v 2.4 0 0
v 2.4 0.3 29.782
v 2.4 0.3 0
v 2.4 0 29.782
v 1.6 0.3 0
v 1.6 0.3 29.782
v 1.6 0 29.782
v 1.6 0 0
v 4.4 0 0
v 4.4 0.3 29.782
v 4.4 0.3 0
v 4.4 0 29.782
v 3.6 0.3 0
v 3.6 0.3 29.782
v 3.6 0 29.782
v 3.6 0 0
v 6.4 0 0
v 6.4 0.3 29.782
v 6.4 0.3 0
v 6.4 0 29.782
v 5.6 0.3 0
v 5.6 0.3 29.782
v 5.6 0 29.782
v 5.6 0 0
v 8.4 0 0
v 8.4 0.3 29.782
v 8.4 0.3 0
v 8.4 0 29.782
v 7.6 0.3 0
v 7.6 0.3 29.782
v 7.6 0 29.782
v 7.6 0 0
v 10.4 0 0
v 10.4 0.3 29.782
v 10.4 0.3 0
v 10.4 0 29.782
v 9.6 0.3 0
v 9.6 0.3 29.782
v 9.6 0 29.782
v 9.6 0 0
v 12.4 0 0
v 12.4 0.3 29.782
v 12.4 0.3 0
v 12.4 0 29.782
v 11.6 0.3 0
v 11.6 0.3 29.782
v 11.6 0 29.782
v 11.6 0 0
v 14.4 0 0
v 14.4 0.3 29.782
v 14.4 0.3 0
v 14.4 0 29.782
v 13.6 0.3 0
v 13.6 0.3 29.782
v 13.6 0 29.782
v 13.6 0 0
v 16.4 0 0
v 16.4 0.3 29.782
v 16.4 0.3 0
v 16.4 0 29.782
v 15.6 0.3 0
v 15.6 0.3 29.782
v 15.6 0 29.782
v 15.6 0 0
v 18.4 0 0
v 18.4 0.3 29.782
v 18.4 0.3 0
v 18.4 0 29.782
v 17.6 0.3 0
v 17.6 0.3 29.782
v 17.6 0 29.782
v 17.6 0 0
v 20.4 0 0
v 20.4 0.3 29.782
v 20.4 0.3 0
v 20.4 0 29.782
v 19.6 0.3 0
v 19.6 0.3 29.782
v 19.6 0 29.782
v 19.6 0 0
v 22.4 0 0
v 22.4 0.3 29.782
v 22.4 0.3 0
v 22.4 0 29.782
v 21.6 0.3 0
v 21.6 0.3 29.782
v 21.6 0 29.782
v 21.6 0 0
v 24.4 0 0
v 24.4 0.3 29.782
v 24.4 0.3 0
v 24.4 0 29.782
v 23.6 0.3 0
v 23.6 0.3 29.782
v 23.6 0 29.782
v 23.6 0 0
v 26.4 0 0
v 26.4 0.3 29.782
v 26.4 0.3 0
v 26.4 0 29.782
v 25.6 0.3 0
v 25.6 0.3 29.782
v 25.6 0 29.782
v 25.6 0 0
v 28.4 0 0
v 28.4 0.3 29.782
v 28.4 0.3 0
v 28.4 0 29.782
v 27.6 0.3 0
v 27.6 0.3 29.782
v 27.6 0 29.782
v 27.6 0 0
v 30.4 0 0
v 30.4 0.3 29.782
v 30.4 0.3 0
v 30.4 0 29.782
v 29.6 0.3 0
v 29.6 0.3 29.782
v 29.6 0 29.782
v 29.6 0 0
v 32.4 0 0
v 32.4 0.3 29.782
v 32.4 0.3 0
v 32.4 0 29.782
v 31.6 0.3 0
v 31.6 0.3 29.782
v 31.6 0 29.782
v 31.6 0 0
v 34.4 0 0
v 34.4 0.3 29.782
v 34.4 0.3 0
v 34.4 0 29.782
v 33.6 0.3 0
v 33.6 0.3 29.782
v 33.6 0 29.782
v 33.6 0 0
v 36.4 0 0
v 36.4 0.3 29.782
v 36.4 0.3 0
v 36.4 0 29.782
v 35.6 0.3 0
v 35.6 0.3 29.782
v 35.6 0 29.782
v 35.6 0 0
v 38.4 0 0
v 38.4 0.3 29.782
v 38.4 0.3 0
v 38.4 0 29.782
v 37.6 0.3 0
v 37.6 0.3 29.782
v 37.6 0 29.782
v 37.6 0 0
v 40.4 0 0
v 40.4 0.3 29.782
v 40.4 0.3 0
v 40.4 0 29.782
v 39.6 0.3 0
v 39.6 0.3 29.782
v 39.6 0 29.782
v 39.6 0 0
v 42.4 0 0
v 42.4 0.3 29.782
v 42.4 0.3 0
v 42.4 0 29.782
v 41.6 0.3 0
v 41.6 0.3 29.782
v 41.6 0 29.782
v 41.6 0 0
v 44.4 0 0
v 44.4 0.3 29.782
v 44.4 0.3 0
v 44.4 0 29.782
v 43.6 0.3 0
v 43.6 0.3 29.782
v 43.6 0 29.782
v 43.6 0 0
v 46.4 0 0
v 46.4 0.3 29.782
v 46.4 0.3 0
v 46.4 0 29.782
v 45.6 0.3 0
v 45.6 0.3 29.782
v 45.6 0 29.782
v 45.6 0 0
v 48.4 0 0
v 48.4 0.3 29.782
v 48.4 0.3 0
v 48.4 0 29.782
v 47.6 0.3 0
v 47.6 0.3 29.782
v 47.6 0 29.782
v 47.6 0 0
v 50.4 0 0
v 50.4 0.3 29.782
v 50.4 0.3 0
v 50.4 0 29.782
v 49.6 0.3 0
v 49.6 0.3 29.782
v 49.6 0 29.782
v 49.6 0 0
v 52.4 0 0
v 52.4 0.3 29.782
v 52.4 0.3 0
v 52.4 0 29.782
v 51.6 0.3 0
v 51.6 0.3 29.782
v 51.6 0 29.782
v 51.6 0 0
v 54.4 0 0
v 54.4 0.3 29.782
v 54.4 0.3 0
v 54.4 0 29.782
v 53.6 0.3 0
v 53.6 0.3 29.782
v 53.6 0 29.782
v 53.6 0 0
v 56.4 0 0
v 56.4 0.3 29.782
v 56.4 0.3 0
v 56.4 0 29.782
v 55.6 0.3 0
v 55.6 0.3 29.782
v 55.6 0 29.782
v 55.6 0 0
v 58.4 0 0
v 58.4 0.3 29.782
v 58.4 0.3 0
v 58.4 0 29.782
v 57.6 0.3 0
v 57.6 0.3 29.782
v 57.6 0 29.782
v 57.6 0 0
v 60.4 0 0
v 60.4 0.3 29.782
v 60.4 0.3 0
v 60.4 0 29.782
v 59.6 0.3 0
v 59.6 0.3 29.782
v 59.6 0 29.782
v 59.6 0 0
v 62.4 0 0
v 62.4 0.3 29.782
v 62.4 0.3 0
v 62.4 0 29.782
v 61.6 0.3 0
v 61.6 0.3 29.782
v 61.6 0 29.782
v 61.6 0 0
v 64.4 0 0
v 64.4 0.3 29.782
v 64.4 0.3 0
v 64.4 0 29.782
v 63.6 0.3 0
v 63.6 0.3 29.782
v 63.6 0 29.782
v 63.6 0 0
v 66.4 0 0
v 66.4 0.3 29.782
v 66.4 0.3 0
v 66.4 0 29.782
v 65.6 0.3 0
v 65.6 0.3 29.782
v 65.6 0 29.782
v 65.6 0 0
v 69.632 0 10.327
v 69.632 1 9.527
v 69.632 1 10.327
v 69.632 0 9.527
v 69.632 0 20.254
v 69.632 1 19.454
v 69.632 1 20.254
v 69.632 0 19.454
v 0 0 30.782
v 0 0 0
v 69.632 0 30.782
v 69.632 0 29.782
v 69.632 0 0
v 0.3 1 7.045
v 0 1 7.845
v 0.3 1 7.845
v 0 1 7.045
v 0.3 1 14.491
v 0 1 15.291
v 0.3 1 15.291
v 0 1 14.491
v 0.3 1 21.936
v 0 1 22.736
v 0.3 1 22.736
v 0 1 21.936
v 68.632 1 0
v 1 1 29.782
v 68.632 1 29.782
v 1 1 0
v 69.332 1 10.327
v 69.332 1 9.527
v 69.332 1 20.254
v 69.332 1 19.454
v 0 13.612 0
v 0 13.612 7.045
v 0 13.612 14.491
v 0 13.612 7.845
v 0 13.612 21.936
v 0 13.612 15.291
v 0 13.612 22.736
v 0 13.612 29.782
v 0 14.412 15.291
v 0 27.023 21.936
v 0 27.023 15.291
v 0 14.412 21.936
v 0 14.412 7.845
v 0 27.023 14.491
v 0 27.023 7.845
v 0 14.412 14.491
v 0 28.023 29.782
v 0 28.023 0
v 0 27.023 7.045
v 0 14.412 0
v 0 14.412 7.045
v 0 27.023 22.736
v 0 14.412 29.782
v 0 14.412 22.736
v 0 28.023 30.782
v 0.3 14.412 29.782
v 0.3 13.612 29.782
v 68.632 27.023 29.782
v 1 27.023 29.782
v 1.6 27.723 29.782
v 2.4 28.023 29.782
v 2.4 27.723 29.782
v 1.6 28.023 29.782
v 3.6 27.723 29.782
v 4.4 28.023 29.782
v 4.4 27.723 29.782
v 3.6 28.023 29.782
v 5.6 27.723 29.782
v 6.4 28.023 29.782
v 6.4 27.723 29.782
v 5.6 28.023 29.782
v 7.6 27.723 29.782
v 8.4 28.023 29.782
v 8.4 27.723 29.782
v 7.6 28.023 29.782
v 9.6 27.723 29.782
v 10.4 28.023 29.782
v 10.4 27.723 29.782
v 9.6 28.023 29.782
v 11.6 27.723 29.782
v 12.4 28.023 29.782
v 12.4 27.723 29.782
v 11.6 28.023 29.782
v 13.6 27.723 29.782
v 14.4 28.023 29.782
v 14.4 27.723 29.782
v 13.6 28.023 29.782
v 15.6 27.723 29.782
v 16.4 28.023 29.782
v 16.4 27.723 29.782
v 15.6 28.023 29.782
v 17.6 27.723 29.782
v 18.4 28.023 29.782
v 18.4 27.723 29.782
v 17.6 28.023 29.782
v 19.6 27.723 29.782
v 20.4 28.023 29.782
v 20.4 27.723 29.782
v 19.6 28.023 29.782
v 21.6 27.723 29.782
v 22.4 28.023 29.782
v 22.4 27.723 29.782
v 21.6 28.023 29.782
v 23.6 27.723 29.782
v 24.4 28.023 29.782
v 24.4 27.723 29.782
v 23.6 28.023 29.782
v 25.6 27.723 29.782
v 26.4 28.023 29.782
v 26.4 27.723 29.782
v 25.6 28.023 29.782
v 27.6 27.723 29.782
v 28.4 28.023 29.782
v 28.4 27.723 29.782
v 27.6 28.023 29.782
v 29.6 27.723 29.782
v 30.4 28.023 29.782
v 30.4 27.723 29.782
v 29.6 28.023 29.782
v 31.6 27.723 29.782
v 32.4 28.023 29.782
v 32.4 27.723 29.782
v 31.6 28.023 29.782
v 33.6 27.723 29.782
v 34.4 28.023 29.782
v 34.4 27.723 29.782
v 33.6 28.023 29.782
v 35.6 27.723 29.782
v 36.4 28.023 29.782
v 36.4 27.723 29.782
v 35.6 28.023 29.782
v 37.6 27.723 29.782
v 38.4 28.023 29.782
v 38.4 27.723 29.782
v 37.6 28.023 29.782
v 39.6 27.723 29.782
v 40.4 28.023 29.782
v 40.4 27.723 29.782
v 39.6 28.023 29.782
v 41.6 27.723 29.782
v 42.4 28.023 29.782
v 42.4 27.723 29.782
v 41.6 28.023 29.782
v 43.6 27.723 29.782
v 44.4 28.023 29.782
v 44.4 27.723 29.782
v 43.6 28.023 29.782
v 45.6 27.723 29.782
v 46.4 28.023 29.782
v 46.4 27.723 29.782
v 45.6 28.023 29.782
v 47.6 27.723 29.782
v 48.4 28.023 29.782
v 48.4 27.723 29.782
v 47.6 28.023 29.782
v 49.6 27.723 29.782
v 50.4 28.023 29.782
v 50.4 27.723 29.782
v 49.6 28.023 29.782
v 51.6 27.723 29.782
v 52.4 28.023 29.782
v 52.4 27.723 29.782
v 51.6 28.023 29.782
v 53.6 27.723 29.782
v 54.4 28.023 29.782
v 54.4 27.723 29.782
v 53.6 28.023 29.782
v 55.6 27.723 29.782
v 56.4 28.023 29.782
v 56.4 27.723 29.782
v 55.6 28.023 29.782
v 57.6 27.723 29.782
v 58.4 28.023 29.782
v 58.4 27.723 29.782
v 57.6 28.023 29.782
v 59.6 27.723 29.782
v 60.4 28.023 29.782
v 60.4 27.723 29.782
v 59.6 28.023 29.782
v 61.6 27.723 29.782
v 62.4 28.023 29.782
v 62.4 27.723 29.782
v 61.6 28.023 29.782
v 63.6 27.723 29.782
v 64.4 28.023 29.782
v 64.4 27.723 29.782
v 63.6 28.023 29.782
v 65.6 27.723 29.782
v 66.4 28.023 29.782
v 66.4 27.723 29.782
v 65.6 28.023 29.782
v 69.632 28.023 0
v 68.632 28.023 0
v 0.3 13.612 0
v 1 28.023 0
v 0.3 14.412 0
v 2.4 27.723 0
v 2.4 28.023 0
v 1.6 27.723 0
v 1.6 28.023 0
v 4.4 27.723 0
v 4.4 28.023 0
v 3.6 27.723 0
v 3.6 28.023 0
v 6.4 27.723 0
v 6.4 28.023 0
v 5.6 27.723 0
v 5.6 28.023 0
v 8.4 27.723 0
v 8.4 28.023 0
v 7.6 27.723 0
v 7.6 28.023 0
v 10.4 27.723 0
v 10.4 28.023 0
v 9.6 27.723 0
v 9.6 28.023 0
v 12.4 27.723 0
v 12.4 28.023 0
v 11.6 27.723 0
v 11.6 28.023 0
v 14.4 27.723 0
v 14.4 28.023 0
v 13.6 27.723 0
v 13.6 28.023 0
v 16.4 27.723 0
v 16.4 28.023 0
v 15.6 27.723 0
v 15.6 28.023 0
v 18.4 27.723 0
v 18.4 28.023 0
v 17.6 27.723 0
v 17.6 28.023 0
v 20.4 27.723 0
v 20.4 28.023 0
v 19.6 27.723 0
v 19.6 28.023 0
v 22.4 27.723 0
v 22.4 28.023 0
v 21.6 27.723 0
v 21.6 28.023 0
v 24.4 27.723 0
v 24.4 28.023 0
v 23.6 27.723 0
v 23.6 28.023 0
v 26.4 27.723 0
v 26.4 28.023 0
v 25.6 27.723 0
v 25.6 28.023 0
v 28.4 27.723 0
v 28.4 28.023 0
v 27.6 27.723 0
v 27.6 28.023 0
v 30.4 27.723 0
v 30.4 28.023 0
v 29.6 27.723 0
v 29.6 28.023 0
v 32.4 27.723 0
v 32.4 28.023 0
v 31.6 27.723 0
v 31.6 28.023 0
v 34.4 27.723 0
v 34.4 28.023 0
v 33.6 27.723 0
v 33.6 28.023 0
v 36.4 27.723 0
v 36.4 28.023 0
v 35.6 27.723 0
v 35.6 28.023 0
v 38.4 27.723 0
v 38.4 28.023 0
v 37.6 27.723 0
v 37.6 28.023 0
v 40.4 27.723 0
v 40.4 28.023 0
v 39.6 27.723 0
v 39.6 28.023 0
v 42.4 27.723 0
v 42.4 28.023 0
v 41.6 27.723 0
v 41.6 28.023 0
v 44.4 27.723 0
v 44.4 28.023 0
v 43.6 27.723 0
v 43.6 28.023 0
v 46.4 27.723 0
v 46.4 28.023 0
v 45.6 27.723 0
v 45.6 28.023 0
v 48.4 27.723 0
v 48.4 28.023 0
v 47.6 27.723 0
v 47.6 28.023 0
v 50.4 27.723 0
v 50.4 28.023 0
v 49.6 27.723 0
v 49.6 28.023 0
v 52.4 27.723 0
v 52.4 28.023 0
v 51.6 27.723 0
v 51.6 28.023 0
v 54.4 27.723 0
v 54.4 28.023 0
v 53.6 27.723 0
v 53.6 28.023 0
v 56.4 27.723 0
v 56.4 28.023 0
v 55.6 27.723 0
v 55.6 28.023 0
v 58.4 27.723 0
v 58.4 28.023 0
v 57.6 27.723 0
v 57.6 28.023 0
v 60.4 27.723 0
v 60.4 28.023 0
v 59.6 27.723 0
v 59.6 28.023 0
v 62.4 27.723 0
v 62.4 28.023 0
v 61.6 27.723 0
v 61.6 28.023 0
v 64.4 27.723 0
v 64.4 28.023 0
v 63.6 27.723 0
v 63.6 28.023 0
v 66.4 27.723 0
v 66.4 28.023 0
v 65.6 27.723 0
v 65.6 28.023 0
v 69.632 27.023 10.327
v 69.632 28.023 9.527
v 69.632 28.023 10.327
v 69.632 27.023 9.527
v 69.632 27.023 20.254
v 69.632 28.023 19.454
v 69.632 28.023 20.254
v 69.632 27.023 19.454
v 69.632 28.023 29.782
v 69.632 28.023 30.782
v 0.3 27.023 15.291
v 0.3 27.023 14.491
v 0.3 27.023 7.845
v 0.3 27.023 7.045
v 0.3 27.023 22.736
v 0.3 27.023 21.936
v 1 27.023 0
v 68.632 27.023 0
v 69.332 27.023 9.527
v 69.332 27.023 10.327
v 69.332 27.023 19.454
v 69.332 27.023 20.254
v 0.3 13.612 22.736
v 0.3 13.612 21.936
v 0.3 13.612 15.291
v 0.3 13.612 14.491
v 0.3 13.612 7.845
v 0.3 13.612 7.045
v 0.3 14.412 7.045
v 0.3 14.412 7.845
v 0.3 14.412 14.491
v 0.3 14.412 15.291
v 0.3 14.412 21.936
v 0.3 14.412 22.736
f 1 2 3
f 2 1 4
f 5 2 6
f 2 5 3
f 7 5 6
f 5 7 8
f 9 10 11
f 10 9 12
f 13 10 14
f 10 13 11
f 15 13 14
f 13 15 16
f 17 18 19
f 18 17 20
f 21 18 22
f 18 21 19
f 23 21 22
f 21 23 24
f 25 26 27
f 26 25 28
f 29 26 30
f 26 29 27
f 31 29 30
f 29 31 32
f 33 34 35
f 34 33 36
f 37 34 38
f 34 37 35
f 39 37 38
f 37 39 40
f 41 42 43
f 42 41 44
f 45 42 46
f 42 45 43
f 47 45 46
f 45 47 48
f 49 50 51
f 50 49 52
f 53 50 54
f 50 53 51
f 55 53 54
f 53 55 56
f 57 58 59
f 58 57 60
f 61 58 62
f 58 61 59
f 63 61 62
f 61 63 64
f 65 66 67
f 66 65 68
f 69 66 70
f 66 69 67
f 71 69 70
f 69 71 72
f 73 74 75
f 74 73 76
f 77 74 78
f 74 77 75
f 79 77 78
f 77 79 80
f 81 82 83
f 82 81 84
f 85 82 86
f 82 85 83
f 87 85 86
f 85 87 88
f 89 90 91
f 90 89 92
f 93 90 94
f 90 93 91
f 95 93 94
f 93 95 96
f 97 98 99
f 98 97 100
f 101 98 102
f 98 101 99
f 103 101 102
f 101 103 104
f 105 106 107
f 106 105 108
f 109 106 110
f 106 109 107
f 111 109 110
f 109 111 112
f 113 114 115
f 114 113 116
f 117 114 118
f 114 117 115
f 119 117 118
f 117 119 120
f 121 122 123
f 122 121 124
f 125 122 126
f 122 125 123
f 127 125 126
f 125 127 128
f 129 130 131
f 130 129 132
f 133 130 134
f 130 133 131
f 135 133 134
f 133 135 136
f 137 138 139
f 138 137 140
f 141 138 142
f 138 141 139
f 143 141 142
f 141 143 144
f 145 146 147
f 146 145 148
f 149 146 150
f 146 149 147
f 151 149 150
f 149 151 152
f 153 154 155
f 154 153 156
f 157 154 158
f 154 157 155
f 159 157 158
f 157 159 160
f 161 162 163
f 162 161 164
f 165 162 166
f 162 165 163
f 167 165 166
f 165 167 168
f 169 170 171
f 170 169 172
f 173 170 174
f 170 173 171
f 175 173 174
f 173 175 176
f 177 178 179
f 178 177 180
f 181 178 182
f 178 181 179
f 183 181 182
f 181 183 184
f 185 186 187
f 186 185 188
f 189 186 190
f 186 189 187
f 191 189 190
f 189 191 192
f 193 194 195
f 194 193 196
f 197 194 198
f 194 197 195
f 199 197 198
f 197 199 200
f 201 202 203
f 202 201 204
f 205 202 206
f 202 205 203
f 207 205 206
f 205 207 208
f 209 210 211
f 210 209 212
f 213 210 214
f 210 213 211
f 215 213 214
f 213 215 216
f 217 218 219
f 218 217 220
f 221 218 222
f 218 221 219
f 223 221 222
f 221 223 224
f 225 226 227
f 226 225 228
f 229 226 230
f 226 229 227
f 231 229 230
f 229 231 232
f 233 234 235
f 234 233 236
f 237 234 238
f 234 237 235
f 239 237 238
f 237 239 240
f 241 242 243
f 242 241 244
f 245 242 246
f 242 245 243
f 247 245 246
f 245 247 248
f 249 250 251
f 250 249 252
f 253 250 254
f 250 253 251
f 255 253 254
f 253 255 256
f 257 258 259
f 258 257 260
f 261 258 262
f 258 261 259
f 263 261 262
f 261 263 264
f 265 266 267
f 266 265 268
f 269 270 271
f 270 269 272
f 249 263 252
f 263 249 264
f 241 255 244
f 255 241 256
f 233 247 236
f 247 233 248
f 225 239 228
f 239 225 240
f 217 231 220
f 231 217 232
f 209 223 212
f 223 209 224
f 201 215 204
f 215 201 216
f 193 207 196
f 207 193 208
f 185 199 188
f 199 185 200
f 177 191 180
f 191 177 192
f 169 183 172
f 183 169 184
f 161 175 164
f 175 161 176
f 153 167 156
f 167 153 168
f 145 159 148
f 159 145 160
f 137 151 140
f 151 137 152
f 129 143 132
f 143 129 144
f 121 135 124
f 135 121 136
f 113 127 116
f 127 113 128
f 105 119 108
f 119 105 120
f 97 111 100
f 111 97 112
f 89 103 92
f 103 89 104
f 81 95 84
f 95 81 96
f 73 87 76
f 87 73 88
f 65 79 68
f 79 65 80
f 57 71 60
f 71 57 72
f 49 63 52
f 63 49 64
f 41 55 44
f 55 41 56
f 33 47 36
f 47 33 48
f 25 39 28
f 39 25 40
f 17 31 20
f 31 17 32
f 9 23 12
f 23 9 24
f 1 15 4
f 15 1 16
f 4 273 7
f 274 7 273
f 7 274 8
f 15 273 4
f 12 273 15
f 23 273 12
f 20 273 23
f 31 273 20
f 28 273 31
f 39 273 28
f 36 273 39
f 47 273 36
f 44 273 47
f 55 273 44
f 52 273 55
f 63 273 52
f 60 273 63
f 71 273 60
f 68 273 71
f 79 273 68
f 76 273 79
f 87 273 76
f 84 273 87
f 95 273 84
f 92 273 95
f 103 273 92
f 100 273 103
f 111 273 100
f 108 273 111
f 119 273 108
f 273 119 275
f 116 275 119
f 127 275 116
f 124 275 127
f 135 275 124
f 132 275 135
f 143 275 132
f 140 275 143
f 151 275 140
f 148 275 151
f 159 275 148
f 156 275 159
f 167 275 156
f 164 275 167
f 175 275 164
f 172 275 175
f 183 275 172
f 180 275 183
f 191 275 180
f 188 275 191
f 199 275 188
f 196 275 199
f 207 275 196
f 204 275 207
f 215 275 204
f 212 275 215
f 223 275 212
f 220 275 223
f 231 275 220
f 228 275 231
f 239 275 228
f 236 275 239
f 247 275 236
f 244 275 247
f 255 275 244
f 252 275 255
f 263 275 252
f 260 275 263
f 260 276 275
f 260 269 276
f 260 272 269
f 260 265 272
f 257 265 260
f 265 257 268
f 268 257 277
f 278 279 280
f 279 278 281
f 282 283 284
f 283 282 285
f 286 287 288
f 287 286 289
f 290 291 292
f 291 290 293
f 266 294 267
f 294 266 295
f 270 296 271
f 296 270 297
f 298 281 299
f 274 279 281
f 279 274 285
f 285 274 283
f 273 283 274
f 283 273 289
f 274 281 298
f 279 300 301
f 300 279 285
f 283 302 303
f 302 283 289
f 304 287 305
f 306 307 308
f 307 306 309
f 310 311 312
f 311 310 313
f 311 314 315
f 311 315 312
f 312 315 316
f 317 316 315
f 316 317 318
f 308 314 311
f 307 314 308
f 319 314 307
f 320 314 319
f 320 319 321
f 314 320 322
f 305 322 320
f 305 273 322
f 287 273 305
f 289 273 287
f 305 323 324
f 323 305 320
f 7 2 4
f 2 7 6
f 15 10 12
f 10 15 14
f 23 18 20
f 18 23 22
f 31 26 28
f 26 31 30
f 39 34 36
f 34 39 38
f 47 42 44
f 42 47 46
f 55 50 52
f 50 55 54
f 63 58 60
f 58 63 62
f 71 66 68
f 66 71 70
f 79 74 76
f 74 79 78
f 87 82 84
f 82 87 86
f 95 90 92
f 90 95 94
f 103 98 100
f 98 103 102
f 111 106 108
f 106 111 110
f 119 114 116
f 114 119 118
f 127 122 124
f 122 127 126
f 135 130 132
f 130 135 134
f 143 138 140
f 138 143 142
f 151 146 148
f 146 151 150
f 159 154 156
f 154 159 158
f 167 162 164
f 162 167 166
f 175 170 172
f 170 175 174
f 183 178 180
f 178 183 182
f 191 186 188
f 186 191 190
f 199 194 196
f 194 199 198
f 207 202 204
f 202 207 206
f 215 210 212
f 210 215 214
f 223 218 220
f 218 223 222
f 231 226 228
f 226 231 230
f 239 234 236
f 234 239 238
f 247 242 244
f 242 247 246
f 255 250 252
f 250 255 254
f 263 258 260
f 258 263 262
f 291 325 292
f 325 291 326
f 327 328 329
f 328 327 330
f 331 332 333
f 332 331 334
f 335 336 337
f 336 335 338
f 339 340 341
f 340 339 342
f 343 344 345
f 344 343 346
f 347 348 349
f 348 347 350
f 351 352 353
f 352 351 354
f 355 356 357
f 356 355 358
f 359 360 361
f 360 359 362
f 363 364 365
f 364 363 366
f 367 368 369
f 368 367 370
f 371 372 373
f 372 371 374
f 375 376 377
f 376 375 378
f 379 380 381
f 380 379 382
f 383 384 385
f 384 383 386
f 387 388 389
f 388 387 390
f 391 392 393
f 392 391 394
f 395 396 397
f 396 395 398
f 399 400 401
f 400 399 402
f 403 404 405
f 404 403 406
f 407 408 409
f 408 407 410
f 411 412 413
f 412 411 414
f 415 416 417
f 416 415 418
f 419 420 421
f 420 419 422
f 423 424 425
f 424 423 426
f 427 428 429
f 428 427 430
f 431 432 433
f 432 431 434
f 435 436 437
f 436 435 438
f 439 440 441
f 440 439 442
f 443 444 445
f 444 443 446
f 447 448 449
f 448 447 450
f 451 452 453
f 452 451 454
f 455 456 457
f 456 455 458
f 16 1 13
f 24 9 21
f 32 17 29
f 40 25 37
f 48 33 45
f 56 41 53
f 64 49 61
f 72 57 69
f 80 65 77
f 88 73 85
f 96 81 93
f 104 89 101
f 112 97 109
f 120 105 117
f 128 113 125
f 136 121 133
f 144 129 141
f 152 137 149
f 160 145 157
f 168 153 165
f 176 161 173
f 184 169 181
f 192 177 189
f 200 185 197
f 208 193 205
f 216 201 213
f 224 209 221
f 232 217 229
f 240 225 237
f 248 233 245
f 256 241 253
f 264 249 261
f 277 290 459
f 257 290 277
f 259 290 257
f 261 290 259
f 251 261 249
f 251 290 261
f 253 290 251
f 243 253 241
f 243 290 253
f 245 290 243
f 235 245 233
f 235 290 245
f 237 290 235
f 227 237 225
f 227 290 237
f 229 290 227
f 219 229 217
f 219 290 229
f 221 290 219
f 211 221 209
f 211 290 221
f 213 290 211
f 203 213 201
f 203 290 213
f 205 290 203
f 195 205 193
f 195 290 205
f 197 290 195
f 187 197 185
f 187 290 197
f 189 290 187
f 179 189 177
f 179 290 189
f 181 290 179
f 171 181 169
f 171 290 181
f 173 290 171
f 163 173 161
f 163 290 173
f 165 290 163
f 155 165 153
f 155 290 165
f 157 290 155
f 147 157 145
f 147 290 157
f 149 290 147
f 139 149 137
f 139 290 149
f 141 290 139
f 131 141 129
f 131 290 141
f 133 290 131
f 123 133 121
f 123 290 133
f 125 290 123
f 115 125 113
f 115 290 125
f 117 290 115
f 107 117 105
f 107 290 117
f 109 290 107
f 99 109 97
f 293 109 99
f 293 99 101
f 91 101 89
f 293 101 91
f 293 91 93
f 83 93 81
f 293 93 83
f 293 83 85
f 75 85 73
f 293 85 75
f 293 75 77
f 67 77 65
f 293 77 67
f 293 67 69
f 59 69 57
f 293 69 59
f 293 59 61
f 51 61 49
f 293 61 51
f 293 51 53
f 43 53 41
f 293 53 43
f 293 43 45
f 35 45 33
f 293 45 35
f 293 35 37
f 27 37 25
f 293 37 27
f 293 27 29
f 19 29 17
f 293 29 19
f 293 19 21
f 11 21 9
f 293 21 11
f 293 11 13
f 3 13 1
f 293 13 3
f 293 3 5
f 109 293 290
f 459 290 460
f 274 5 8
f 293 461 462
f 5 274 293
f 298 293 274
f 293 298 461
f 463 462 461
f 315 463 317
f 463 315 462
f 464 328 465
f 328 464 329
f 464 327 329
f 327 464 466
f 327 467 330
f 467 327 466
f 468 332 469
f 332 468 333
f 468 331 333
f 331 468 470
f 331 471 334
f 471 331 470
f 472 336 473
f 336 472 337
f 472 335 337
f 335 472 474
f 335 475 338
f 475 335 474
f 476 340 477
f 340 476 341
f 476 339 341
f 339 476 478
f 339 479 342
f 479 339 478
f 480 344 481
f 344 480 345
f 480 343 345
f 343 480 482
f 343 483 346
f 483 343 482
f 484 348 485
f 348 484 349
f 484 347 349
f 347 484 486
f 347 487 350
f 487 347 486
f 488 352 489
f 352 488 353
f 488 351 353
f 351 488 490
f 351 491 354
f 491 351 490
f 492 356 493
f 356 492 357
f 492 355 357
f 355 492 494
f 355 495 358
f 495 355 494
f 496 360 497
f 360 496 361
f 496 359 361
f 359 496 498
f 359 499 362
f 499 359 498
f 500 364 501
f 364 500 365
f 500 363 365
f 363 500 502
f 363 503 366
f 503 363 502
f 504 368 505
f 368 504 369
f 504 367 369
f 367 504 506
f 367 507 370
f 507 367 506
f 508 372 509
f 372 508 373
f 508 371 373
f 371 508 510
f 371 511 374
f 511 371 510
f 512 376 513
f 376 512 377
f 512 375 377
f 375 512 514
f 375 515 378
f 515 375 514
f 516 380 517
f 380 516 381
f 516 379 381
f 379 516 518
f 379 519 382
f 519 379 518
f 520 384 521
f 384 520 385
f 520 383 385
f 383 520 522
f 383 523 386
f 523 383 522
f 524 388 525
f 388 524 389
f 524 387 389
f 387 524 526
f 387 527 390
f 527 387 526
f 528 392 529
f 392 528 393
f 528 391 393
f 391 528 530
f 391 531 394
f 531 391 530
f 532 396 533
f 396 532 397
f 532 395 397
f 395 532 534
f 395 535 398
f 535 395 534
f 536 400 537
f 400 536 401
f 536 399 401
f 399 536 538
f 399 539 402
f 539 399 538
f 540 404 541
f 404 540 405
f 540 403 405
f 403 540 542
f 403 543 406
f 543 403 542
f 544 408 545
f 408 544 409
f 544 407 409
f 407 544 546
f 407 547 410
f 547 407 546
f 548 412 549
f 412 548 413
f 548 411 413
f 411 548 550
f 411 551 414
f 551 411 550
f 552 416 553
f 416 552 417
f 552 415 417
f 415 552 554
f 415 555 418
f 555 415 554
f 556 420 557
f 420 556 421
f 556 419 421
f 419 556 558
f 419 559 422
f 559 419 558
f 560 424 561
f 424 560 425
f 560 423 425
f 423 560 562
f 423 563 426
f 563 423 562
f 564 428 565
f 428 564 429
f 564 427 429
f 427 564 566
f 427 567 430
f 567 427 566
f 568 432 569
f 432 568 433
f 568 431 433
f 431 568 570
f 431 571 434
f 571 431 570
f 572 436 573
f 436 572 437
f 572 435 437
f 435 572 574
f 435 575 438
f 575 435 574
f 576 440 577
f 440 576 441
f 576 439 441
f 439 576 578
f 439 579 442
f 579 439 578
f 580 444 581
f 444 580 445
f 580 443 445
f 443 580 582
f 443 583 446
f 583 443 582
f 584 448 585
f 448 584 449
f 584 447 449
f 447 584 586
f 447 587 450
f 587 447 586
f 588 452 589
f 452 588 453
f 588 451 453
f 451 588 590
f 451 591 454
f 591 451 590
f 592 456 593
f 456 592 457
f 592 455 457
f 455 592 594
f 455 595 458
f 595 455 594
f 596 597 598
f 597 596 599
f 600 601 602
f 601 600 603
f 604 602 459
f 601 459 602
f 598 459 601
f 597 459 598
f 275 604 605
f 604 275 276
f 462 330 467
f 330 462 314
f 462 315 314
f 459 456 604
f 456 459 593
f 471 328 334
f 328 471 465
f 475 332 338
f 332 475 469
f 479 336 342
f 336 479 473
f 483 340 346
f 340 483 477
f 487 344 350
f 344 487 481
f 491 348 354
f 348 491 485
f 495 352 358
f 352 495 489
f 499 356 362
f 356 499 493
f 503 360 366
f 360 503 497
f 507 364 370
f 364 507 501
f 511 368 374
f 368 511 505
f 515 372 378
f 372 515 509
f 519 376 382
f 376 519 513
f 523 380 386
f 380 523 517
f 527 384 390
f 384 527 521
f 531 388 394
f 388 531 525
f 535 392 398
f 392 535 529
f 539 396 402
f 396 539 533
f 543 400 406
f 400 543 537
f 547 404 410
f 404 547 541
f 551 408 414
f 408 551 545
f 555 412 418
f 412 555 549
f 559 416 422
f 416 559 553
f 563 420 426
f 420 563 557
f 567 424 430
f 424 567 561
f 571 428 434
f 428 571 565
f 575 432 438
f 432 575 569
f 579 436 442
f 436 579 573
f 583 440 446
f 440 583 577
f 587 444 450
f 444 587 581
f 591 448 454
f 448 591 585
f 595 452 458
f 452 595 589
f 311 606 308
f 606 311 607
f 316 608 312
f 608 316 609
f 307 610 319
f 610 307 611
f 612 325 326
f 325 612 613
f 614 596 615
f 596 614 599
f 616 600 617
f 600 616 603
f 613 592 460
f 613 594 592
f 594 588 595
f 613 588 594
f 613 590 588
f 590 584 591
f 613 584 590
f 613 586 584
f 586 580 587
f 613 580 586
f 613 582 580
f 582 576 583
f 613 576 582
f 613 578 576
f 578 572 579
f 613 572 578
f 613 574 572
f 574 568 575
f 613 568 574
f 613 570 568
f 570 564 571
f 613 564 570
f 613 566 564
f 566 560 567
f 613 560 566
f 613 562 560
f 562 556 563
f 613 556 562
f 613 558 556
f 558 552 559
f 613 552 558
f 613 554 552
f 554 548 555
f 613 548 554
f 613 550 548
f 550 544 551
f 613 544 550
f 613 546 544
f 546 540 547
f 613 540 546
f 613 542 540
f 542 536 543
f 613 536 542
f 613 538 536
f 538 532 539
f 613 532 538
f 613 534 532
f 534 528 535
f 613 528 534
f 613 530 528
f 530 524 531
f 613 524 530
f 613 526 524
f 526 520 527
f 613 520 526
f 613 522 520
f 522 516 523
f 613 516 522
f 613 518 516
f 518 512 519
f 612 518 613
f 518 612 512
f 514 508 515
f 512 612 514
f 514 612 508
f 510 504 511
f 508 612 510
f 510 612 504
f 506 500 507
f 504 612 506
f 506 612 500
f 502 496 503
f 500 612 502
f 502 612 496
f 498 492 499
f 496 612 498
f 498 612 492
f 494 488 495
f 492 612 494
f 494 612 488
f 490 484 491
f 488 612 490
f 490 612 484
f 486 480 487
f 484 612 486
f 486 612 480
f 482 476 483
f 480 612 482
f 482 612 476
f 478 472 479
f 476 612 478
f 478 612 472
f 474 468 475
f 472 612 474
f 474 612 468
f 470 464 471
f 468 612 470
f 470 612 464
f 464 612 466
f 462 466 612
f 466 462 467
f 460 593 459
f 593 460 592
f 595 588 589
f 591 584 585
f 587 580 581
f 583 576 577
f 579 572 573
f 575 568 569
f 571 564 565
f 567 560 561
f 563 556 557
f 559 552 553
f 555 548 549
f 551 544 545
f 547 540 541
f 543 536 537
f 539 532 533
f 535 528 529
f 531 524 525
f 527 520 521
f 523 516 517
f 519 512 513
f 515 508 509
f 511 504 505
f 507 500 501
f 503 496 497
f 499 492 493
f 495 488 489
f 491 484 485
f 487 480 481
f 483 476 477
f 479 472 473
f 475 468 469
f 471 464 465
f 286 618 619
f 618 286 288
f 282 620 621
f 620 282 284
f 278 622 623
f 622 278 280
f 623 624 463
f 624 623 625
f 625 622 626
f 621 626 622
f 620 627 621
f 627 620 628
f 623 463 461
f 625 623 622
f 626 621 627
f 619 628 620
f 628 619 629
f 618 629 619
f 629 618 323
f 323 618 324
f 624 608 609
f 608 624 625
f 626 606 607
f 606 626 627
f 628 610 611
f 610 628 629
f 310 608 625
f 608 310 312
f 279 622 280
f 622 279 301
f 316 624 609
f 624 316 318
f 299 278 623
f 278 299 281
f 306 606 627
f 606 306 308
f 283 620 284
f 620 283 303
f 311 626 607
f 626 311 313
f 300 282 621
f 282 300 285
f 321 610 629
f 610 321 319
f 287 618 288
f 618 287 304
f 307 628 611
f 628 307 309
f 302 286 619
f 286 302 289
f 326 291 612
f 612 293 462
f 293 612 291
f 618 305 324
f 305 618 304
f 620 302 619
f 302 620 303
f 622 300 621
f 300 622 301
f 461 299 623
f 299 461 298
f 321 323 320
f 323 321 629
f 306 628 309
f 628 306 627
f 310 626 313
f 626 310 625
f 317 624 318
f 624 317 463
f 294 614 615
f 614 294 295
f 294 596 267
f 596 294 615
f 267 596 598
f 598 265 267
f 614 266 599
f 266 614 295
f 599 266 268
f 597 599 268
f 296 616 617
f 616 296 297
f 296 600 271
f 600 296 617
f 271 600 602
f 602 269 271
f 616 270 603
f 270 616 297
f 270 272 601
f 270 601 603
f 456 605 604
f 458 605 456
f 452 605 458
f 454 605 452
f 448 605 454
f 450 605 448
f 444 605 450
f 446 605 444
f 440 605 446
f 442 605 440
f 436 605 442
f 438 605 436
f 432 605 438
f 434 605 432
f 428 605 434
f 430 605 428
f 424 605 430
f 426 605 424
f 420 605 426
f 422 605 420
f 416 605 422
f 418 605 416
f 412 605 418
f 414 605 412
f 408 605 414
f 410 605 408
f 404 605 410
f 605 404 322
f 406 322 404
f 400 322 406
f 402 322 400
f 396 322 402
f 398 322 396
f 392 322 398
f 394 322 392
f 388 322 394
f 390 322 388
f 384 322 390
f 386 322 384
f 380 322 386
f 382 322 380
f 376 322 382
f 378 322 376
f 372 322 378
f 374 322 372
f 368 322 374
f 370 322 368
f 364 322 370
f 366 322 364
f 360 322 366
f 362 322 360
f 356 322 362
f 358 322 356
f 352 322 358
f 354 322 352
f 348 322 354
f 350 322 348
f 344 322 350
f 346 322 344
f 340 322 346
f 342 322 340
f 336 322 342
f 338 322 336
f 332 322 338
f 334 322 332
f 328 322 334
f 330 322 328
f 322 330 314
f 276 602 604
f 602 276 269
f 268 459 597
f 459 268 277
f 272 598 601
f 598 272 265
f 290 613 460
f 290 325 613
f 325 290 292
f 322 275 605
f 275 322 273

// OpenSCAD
// file: marine_container_roof.scad
/*
 * PROMPT: H0 scale (1:87) ISO shipping container roof panel, flat for printing.
 * 69.6 mm × 28.0 mm × 1 mm. Plain flat panel, no surface detail.
 */

$fn = 32;
S = 1 / 87;

panel_t     = 1.0;
container_m = 6;

ctnr_l      = (container_m == 6 ? 6058 : 12192) * S;  // 69.6 mm
ctnr_w      = 2438 * S;                                //  28.0 mm

module roof_panel() {
    // X = panel width (ctnr_l), Y = panel depth (ctnr_w), Z = thickness
    cube([ctnr_l, ctnr_w, panel_t]);
}

roof_panel();
// file: marine_container_nose_end.scad
/*
 * PROMPT: H0 scale (1:87) ISO shipping container sealed nose end panel, flat for
 * printing. 28.0 mm × 29.8 mm × 1 mm. Two horizontal rail grooves evenly spaced
 * in Y on the exterior face, 0.8 mm wide, 0.3 mm deep, running full width.
 */

$fn = 32;
S = 1 / 87;

panel_t    = 1.0;

ctnr_w     = 2438 * S;   // 28.0 mm — panel width
ctnr_h     = 2591 * S;   // 29.8 mm — panel height

nose_rails = 2;
rail_w     = 0.8;   // groove width (mm)
rail_d     = 0.3;   // groove depth (mm)

module nose_end_panel() {
    // X = panel width (ctnr_w), Y = panel height (ctnr_h), Z = thickness
    // exterior face is at Z = panel_t (face-up when printing)
    difference() {
        cube([ctnr_w, ctnr_h, panel_t]);
        // horizontal rail grooves evenly spaced along Y
        for (i = [1 : nose_rails]) {
            y = i * ctnr_h / (nose_rails + 1);
            translate([-1, y - rail_w/2, panel_t - rail_d])
                cube([ctnr_w + 2, rail_w, rail_d + 1]);
        }
    }
}

nose_end_panel();
// file: marine_container_door_end.scad
/*
 * PROMPT: H0 scale (1:87) ISO shipping container door end panel, flat for printing.
 * 28.0 mm × 29.8 mm × 1 mm. Three horizontal rail grooves evenly spaced in Y on the
 * exterior face, 0.8 mm wide, 0.3 mm deep, running full width. One vertical centre
 * groove 0.8 mm wide, 0.3 mm deep, running full height, representing the door split.
 */

$fn = 32;
S = 1 / 87;

panel_t    = 1.0;

ctnr_w     = 2438 * S;   // 28.0 mm — panel width
ctnr_h     = 2591 * S;   // 29.8 mm — panel height

door_rails = 3;
rail_w     = 0.8;   // groove width (mm)
rail_d     = 0.3;   // groove depth (mm)
door_gap_w = 0.8;   // centre groove width (mm)

module door_end_panel() {
    // X = panel width (ctnr_w), Y = panel height (ctnr_h), Z = thickness
    // exterior face is at Z = panel_t (face-up when printing)
    difference() {
        cube([ctnr_w, ctnr_h, panel_t]);
        // horizontal rail grooves evenly spaced along Y
        for (i = [1 : door_rails]) {
            y = i * ctnr_h / (door_rails + 1);
            translate([-1, y - rail_w/2, panel_t - rail_d])
                cube([ctnr_w + 2, rail_w, rail_d + 1]);
        }
        // vertical centre groove (door split)
        translate([ctnr_w/2 - door_gap_w/2, -1, panel_t - rail_d])
            cube([door_gap_w, ctnr_h + 2, rail_d + 1]);
    }
}

door_end_panel();
// file: marine_container_side.scad
/*
 * PROMPT: H0 scale (1:87) ISO shipping container long side panel, flat for printing.
 * 69.6 mm × 29.8 mm × 1 mm. Vertical corrugation grooves on exterior face (Z=1),
 * spaced every 2 mm along length, 0.8 mm wide, 0.3 mm deep, running full height.
 */

$fn = 32;
S = 1 / 87;

panel_t     = 1.0;
container_m = 6;

ctnr_l      = (container_m == 6 ? 6058 : 12192) * S;  // 69.6 mm
ctnr_h      = 2591 * S;                                //  29.8 mm

corr_period = 2.0;   // groove pitch (mm)
corr_w      = 0.8;   // groove width (mm)
corr_d      = 0.3;   // groove depth (mm)

module side_panel() {
    // X = panel width (ctnr_l), Y = panel height (ctnr_h), Z = thickness
    // exterior face is at Z = panel_t (face-up when printing)
    difference() {
        cube([ctnr_l, ctnr_h, panel_t]);
        // vertical corrugation grooves cut from the exterior face downward
        n = floor(ctnr_l / corr_period) - 1;
        for (i = [1 : n]) {
            x = i * corr_period;
            translate([x - corr_w/2, -1, panel_t - corr_d])
                cube([corr_w, ctnr_h + 2, corr_d + 1]);
        }
    }
}

side_panel();
// main file
/*
 * PROMPT: H0 scale (1:87) ISO shipping container assembly — visualization only.
 * Assembles five flat panels (two long sides, door end, nose end, roof) into a
 * complete container shell. Long axis along X, width along Y, height along Z.
 */

$fn = 32;
S = 1 / 87;

panel_t     = 1.0;
container_m = 6;

ctnr_l      = (container_m == 6 ? 6058 : 12192) * S;  // 69.6 mm
ctnr_w      = 2438 * S;                                //  28.0 mm
ctnr_h      = 2591 * S;                                //  29.8 mm

use <marine_container_side.scad>
use <marine_container_door_end.scad>
use <marine_container_nose_end.scad>
use <marine_container_roof.scad>

// Front long side — at Y=0, exterior face pointing toward -Y
// panel X→container X, panel Y→container Z
translate([0, panel_t, 0])
    rotate([90, 0, 0])
        side_panel();

// Back long side — at Y=ctnr_w, exterior face pointing toward +Y
// flip 180° around panel X axis so exterior face still faces outward
translate([0, ctnr_w - panel_t, ctnr_h])
    rotate([-90, 0, 0])
        side_panel();

// Door end — at X=0, exterior face pointing toward -X
// panel X→container Y, panel Y→container Z; rotate in XY then tip up
translate([panel_t, ctnr_w, 0])
    rotate([90, 0, -90])
        door_end_panel();

// Nose end — at X=ctnr_l, exterior face pointing toward +X
translate([ctnr_l - panel_t, 0, 0])
    rotate([90, 0, 90])
        nose_end_panel();

// Roof — sits on top at Z=ctnr_h, exterior face pointing upward (+Z)
translate([0, 0, ctnr_h])
    roof_panel();
